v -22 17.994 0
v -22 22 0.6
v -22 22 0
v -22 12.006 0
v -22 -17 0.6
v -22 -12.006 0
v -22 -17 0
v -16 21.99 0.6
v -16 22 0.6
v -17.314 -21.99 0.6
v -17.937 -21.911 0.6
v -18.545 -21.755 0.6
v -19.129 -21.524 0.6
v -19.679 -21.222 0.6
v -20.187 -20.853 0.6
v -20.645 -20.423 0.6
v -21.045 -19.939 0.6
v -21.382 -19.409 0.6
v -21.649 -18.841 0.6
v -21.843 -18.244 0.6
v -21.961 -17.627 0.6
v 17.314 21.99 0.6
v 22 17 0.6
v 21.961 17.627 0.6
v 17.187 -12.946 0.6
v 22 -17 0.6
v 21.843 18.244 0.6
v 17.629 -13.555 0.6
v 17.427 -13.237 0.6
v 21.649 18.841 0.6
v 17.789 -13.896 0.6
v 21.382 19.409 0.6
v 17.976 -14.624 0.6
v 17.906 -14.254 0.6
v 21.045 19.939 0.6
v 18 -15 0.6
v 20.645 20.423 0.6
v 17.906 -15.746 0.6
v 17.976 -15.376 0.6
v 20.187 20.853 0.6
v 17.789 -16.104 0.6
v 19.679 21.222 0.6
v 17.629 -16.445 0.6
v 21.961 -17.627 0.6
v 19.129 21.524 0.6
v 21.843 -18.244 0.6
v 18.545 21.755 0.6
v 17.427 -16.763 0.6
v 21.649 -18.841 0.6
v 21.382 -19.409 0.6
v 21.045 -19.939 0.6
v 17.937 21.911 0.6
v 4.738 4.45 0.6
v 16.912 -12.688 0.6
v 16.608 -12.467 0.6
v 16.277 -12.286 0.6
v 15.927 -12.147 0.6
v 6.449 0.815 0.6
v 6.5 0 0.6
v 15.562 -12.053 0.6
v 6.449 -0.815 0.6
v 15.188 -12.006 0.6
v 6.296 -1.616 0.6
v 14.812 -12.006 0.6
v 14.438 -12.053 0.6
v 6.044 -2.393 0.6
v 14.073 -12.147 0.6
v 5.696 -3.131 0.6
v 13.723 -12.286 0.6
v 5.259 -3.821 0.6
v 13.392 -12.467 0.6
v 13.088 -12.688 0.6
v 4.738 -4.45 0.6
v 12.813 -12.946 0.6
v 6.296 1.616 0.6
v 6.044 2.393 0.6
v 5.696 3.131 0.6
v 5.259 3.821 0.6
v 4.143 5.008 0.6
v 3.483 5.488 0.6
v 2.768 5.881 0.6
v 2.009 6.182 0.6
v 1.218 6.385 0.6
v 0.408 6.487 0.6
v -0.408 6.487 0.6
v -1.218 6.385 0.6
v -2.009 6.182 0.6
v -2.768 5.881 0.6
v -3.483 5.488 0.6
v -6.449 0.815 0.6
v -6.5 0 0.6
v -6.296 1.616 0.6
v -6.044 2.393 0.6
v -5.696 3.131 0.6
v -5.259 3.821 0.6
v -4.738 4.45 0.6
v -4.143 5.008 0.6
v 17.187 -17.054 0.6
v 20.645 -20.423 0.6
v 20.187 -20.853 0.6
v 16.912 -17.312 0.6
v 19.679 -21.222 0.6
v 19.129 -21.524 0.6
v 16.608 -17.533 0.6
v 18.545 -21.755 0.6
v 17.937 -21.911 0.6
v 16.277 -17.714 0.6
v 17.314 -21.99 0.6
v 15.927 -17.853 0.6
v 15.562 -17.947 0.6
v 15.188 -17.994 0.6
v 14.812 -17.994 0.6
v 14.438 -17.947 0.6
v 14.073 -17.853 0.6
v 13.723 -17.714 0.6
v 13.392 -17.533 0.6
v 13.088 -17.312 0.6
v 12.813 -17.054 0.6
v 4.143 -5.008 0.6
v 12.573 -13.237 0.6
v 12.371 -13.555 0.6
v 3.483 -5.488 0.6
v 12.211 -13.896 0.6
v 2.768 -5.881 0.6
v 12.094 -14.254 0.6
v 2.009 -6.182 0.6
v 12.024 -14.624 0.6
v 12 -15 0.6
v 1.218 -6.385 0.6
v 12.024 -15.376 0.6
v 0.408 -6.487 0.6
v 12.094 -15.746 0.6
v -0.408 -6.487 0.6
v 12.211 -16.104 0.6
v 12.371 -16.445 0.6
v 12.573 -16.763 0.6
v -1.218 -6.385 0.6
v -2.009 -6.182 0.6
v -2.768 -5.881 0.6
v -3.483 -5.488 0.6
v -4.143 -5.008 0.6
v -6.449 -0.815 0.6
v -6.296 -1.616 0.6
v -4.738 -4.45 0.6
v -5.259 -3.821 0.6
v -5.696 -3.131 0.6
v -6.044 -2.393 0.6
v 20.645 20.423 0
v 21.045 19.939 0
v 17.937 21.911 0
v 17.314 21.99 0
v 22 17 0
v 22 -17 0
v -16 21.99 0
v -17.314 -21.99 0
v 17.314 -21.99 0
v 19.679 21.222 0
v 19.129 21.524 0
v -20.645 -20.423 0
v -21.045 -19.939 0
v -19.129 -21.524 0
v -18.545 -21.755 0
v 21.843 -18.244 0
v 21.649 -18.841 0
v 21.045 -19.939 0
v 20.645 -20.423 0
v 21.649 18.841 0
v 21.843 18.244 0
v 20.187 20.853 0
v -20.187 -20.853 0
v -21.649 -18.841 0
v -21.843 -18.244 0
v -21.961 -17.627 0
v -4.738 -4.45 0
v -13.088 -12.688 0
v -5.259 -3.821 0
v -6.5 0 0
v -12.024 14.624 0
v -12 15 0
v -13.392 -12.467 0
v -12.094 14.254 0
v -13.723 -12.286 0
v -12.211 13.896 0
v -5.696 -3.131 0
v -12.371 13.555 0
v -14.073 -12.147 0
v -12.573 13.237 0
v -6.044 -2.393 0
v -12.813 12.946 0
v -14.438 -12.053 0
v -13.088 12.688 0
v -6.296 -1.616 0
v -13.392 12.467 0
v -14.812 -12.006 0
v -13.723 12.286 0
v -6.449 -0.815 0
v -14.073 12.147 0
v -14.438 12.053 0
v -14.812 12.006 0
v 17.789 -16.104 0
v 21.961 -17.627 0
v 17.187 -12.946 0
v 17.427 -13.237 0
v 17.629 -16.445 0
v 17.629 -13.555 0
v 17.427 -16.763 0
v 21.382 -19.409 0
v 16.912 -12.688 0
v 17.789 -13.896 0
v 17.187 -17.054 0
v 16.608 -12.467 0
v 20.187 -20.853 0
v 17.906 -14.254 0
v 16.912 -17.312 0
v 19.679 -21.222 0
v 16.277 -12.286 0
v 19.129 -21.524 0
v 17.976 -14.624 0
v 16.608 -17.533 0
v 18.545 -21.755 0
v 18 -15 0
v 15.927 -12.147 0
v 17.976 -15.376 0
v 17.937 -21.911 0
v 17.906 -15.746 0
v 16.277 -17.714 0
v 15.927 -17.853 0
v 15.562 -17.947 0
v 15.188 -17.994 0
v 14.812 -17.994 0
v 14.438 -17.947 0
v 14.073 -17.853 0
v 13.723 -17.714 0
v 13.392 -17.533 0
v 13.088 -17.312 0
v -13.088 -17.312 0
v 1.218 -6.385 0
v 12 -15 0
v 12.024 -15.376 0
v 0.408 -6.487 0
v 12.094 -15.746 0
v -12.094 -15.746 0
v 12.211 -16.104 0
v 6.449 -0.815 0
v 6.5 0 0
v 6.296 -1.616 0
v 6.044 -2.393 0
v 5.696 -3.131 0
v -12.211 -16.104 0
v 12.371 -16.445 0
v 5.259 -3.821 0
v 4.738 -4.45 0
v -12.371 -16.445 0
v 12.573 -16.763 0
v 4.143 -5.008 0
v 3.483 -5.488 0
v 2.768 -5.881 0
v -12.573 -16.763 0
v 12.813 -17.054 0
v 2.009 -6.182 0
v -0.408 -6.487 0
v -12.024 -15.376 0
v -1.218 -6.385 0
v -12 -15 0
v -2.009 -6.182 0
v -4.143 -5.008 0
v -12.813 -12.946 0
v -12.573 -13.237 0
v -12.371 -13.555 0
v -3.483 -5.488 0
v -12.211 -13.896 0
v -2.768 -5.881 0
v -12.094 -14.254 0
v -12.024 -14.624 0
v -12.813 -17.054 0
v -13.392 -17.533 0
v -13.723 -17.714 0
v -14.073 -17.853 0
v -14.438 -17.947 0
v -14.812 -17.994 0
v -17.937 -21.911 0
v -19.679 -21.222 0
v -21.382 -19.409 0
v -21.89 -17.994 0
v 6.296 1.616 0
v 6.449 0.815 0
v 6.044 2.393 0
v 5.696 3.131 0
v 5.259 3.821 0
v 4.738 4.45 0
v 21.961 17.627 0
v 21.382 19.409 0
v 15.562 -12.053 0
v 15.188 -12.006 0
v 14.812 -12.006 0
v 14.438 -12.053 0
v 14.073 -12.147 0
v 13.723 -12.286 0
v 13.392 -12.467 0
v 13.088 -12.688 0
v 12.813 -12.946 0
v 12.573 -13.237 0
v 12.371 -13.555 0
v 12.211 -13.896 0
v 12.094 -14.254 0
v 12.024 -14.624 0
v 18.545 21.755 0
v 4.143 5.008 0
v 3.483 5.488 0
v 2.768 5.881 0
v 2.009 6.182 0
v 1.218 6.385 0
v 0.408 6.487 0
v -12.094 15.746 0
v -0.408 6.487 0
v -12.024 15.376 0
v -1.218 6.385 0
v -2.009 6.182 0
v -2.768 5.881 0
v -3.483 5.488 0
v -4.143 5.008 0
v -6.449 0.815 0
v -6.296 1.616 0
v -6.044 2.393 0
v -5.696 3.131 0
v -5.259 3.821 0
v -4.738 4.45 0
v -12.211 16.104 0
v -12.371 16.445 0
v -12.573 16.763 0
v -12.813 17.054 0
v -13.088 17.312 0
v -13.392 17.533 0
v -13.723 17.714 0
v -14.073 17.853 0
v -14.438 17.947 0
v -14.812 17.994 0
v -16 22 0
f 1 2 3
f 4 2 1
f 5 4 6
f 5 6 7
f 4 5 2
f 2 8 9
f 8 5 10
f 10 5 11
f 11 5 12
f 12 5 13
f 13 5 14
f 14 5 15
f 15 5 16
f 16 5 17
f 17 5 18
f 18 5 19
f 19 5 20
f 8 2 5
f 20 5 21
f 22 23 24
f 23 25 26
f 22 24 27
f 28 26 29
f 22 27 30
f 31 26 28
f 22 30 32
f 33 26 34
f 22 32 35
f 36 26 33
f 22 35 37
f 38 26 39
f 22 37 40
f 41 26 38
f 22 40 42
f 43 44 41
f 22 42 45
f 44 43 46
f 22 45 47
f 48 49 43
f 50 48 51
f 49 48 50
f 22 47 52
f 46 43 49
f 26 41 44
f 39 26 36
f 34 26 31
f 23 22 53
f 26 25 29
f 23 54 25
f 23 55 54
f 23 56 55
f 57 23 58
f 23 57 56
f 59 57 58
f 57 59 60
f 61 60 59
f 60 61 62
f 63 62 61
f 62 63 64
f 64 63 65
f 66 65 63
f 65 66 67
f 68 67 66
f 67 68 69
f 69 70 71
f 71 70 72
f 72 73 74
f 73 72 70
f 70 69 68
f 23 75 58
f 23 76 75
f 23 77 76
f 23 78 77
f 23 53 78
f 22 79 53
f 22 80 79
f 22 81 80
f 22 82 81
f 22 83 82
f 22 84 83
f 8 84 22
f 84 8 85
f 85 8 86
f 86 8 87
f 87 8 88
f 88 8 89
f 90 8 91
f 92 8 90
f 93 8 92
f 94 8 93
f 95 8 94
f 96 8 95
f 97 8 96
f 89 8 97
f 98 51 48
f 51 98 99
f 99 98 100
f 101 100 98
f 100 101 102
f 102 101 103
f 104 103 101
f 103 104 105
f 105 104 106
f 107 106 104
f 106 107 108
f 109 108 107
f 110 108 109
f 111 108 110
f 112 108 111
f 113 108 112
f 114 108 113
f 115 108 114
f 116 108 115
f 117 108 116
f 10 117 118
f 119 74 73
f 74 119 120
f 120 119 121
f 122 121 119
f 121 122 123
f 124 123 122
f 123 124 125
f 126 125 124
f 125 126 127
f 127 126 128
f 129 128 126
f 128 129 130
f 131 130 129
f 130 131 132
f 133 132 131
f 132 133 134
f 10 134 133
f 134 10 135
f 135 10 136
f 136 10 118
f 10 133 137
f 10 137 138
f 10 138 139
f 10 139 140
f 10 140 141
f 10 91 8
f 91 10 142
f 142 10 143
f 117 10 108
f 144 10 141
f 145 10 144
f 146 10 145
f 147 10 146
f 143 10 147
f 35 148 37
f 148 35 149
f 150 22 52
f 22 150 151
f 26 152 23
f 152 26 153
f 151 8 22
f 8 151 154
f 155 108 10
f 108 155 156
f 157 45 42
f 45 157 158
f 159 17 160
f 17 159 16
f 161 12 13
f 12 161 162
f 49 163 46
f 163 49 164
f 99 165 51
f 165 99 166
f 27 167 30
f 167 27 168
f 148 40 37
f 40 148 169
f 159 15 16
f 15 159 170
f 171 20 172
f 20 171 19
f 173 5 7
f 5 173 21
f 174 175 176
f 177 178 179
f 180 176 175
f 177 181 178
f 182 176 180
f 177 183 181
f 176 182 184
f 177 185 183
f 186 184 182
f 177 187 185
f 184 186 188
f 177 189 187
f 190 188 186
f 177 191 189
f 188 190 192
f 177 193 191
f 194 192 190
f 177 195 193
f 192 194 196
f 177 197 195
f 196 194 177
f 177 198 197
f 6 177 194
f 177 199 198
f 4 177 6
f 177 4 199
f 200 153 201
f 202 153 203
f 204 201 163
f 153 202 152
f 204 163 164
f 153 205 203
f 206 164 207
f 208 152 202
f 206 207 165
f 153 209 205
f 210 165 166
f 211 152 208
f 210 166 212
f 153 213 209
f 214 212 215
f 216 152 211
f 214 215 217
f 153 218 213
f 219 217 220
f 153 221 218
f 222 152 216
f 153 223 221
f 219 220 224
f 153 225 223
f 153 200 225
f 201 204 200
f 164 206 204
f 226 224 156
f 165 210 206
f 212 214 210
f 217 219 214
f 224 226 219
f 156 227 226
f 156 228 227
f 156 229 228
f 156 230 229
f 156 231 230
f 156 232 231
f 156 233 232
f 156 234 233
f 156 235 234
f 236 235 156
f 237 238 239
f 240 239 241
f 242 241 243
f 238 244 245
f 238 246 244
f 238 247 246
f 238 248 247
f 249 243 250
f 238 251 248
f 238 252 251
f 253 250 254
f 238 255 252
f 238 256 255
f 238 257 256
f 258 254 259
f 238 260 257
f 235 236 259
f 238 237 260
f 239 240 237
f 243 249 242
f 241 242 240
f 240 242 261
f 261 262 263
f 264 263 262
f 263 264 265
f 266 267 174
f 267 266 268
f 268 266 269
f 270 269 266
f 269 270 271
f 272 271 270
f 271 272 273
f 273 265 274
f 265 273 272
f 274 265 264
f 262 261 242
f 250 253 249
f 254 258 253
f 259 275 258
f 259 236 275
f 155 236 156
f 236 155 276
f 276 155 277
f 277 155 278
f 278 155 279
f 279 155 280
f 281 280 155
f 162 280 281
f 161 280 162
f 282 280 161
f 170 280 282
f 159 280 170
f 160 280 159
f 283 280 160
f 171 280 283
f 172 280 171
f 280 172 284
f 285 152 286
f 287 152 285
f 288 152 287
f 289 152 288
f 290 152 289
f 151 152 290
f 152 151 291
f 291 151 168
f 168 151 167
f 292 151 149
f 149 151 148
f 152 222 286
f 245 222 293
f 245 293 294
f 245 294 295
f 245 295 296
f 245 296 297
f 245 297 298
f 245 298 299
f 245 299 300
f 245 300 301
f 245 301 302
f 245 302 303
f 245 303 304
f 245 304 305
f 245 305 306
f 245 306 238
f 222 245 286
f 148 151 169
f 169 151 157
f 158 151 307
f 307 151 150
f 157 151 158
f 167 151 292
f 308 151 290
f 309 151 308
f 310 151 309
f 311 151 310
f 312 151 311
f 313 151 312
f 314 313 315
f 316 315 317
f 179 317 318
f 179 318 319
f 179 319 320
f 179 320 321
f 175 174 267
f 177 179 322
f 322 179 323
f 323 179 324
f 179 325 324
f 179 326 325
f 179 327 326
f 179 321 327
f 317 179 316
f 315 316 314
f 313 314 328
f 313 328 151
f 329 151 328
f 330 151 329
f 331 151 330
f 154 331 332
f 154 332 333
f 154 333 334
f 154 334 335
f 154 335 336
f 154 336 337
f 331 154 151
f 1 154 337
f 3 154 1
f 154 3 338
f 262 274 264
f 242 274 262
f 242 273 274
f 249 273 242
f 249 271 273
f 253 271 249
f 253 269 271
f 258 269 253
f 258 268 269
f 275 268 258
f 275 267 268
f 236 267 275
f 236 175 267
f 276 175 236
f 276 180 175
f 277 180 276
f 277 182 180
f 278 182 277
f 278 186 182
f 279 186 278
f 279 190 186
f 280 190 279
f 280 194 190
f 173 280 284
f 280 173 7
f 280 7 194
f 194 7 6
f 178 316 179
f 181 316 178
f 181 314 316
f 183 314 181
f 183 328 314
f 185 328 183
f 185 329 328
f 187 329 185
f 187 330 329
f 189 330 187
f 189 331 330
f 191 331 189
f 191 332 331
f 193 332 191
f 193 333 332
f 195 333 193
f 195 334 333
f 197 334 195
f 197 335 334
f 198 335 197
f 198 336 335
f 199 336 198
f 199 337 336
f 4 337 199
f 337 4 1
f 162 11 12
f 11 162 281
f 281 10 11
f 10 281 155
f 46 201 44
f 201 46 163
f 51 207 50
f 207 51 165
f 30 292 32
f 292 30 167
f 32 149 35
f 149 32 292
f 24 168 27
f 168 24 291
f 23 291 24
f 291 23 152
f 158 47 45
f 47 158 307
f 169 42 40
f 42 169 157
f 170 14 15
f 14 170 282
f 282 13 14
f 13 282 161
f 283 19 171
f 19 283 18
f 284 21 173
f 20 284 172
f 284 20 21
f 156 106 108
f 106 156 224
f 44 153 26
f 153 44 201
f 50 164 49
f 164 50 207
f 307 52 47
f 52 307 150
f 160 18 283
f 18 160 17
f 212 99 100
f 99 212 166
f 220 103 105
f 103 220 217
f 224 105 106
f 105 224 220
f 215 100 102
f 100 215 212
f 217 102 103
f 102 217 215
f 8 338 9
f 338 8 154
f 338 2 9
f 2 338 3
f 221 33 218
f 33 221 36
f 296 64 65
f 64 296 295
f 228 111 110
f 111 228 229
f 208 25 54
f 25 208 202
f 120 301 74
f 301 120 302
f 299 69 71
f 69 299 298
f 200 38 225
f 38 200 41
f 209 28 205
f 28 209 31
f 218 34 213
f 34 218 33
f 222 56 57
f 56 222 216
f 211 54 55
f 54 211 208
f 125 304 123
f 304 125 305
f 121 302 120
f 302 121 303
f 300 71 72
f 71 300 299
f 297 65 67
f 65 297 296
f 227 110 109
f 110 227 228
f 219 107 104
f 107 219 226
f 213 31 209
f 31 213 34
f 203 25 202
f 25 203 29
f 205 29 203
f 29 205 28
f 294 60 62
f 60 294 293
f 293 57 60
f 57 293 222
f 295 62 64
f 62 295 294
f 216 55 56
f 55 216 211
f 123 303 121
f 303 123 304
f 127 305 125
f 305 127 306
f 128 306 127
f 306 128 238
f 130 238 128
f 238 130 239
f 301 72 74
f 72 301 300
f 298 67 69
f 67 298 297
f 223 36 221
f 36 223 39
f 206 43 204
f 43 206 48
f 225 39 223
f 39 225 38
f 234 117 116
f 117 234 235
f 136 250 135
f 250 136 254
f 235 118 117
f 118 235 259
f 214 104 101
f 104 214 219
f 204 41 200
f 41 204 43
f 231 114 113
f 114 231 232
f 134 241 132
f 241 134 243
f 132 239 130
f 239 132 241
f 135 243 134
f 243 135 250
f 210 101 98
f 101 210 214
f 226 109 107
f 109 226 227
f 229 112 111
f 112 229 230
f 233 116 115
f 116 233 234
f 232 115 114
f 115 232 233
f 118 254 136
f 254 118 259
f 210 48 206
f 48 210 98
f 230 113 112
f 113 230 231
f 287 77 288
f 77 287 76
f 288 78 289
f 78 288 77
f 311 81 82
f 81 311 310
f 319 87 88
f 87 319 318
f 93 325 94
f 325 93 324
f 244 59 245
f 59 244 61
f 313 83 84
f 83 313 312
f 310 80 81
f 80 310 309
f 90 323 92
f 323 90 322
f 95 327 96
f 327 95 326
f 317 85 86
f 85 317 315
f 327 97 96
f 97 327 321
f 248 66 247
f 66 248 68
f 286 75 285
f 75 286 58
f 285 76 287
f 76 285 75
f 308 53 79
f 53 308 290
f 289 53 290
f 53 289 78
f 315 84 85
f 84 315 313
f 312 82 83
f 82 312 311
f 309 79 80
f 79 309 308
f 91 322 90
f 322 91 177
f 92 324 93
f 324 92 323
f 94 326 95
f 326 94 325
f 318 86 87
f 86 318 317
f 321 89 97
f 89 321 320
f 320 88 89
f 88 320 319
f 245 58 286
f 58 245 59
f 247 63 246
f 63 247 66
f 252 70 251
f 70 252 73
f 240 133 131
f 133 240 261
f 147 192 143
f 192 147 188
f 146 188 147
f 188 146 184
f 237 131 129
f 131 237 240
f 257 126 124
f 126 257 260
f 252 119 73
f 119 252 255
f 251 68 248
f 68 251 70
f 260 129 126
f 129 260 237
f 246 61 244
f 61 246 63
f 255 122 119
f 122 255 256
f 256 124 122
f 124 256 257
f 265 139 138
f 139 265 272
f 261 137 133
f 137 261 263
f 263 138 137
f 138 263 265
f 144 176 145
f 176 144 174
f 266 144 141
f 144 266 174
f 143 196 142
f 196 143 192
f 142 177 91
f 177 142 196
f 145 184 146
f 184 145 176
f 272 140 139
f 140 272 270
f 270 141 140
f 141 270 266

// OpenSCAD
$fn = 50;


difference() {
	union() {
		hull() {
			translate(v = [-17.0000000000, 17.0000000000, 0]) {
				cylinder(h = 0.6000000000, r = 5);
			}
			translate(v = [17.0000000000, 17.0000000000, 0]) {
				cylinder(h = 0.6000000000, r = 5);
			}
			translate(v = [-17.0000000000, -17.0000000000, 0]) {
				cylinder(h = 0.6000000000, r = 5);
			}
			translate(v = [17.0000000000, -17.0000000000, 0]) {
				cylinder(h = 0.6000000000, r = 5);
			}
		}
		translate(v = [-22.0000000000, 16.0000000000, 0]) {
			cube(size = [6, 6, 0.6000000000]);
		}
	}
	union() {
		translate(v = [-22.5000000000, -15.0000000000, -250.0000000000]) {
			rotate(a = [0, 0, 0]) {
				difference() {
					union() {
						hull() {
							translate(v = [7.5000000000, 0, 0]) {
								cylinder(h = 250, r = 3.0000000000, r1 = 3.0000000000, r2 = 3.0000000000);
							}
							translate(v = [-7.5000000000, 0, 0]) {
								cylinder(h = 250, r = 3.0000000000, r1 = 3.0000000000, r2 = 3.0000000000);
							}
						}
					}
					union();
				}
			}
		}
		translate(v = [-22.5000000000, 15.0000000000, -250.0000000000]) {
			rotate(a = [0, 0, 0]) {
				difference() {
					union() {
						hull() {
							translate(v = [7.5000000000, 0, 0]) {
								cylinder(h = 250, r = 3.0000000000, r1 = 3.0000000000, r2 = 3.0000000000);
							}
							translate(v = [-7.5000000000, 0, 0]) {
								cylinder(h = 250, r = 3.0000000000, r1 = 3.0000000000, r2 = 3.0000000000);
							}
						}
					}
					union();
				}
			}
		}
		translate(v = [15.0000000000, -15.0000000000, 0]) {
			cylinder(h = 100, r = 3.0000000000);
		}
		cylinder(h = 0.6000000000, r = 6.5000000000);
	}
}
